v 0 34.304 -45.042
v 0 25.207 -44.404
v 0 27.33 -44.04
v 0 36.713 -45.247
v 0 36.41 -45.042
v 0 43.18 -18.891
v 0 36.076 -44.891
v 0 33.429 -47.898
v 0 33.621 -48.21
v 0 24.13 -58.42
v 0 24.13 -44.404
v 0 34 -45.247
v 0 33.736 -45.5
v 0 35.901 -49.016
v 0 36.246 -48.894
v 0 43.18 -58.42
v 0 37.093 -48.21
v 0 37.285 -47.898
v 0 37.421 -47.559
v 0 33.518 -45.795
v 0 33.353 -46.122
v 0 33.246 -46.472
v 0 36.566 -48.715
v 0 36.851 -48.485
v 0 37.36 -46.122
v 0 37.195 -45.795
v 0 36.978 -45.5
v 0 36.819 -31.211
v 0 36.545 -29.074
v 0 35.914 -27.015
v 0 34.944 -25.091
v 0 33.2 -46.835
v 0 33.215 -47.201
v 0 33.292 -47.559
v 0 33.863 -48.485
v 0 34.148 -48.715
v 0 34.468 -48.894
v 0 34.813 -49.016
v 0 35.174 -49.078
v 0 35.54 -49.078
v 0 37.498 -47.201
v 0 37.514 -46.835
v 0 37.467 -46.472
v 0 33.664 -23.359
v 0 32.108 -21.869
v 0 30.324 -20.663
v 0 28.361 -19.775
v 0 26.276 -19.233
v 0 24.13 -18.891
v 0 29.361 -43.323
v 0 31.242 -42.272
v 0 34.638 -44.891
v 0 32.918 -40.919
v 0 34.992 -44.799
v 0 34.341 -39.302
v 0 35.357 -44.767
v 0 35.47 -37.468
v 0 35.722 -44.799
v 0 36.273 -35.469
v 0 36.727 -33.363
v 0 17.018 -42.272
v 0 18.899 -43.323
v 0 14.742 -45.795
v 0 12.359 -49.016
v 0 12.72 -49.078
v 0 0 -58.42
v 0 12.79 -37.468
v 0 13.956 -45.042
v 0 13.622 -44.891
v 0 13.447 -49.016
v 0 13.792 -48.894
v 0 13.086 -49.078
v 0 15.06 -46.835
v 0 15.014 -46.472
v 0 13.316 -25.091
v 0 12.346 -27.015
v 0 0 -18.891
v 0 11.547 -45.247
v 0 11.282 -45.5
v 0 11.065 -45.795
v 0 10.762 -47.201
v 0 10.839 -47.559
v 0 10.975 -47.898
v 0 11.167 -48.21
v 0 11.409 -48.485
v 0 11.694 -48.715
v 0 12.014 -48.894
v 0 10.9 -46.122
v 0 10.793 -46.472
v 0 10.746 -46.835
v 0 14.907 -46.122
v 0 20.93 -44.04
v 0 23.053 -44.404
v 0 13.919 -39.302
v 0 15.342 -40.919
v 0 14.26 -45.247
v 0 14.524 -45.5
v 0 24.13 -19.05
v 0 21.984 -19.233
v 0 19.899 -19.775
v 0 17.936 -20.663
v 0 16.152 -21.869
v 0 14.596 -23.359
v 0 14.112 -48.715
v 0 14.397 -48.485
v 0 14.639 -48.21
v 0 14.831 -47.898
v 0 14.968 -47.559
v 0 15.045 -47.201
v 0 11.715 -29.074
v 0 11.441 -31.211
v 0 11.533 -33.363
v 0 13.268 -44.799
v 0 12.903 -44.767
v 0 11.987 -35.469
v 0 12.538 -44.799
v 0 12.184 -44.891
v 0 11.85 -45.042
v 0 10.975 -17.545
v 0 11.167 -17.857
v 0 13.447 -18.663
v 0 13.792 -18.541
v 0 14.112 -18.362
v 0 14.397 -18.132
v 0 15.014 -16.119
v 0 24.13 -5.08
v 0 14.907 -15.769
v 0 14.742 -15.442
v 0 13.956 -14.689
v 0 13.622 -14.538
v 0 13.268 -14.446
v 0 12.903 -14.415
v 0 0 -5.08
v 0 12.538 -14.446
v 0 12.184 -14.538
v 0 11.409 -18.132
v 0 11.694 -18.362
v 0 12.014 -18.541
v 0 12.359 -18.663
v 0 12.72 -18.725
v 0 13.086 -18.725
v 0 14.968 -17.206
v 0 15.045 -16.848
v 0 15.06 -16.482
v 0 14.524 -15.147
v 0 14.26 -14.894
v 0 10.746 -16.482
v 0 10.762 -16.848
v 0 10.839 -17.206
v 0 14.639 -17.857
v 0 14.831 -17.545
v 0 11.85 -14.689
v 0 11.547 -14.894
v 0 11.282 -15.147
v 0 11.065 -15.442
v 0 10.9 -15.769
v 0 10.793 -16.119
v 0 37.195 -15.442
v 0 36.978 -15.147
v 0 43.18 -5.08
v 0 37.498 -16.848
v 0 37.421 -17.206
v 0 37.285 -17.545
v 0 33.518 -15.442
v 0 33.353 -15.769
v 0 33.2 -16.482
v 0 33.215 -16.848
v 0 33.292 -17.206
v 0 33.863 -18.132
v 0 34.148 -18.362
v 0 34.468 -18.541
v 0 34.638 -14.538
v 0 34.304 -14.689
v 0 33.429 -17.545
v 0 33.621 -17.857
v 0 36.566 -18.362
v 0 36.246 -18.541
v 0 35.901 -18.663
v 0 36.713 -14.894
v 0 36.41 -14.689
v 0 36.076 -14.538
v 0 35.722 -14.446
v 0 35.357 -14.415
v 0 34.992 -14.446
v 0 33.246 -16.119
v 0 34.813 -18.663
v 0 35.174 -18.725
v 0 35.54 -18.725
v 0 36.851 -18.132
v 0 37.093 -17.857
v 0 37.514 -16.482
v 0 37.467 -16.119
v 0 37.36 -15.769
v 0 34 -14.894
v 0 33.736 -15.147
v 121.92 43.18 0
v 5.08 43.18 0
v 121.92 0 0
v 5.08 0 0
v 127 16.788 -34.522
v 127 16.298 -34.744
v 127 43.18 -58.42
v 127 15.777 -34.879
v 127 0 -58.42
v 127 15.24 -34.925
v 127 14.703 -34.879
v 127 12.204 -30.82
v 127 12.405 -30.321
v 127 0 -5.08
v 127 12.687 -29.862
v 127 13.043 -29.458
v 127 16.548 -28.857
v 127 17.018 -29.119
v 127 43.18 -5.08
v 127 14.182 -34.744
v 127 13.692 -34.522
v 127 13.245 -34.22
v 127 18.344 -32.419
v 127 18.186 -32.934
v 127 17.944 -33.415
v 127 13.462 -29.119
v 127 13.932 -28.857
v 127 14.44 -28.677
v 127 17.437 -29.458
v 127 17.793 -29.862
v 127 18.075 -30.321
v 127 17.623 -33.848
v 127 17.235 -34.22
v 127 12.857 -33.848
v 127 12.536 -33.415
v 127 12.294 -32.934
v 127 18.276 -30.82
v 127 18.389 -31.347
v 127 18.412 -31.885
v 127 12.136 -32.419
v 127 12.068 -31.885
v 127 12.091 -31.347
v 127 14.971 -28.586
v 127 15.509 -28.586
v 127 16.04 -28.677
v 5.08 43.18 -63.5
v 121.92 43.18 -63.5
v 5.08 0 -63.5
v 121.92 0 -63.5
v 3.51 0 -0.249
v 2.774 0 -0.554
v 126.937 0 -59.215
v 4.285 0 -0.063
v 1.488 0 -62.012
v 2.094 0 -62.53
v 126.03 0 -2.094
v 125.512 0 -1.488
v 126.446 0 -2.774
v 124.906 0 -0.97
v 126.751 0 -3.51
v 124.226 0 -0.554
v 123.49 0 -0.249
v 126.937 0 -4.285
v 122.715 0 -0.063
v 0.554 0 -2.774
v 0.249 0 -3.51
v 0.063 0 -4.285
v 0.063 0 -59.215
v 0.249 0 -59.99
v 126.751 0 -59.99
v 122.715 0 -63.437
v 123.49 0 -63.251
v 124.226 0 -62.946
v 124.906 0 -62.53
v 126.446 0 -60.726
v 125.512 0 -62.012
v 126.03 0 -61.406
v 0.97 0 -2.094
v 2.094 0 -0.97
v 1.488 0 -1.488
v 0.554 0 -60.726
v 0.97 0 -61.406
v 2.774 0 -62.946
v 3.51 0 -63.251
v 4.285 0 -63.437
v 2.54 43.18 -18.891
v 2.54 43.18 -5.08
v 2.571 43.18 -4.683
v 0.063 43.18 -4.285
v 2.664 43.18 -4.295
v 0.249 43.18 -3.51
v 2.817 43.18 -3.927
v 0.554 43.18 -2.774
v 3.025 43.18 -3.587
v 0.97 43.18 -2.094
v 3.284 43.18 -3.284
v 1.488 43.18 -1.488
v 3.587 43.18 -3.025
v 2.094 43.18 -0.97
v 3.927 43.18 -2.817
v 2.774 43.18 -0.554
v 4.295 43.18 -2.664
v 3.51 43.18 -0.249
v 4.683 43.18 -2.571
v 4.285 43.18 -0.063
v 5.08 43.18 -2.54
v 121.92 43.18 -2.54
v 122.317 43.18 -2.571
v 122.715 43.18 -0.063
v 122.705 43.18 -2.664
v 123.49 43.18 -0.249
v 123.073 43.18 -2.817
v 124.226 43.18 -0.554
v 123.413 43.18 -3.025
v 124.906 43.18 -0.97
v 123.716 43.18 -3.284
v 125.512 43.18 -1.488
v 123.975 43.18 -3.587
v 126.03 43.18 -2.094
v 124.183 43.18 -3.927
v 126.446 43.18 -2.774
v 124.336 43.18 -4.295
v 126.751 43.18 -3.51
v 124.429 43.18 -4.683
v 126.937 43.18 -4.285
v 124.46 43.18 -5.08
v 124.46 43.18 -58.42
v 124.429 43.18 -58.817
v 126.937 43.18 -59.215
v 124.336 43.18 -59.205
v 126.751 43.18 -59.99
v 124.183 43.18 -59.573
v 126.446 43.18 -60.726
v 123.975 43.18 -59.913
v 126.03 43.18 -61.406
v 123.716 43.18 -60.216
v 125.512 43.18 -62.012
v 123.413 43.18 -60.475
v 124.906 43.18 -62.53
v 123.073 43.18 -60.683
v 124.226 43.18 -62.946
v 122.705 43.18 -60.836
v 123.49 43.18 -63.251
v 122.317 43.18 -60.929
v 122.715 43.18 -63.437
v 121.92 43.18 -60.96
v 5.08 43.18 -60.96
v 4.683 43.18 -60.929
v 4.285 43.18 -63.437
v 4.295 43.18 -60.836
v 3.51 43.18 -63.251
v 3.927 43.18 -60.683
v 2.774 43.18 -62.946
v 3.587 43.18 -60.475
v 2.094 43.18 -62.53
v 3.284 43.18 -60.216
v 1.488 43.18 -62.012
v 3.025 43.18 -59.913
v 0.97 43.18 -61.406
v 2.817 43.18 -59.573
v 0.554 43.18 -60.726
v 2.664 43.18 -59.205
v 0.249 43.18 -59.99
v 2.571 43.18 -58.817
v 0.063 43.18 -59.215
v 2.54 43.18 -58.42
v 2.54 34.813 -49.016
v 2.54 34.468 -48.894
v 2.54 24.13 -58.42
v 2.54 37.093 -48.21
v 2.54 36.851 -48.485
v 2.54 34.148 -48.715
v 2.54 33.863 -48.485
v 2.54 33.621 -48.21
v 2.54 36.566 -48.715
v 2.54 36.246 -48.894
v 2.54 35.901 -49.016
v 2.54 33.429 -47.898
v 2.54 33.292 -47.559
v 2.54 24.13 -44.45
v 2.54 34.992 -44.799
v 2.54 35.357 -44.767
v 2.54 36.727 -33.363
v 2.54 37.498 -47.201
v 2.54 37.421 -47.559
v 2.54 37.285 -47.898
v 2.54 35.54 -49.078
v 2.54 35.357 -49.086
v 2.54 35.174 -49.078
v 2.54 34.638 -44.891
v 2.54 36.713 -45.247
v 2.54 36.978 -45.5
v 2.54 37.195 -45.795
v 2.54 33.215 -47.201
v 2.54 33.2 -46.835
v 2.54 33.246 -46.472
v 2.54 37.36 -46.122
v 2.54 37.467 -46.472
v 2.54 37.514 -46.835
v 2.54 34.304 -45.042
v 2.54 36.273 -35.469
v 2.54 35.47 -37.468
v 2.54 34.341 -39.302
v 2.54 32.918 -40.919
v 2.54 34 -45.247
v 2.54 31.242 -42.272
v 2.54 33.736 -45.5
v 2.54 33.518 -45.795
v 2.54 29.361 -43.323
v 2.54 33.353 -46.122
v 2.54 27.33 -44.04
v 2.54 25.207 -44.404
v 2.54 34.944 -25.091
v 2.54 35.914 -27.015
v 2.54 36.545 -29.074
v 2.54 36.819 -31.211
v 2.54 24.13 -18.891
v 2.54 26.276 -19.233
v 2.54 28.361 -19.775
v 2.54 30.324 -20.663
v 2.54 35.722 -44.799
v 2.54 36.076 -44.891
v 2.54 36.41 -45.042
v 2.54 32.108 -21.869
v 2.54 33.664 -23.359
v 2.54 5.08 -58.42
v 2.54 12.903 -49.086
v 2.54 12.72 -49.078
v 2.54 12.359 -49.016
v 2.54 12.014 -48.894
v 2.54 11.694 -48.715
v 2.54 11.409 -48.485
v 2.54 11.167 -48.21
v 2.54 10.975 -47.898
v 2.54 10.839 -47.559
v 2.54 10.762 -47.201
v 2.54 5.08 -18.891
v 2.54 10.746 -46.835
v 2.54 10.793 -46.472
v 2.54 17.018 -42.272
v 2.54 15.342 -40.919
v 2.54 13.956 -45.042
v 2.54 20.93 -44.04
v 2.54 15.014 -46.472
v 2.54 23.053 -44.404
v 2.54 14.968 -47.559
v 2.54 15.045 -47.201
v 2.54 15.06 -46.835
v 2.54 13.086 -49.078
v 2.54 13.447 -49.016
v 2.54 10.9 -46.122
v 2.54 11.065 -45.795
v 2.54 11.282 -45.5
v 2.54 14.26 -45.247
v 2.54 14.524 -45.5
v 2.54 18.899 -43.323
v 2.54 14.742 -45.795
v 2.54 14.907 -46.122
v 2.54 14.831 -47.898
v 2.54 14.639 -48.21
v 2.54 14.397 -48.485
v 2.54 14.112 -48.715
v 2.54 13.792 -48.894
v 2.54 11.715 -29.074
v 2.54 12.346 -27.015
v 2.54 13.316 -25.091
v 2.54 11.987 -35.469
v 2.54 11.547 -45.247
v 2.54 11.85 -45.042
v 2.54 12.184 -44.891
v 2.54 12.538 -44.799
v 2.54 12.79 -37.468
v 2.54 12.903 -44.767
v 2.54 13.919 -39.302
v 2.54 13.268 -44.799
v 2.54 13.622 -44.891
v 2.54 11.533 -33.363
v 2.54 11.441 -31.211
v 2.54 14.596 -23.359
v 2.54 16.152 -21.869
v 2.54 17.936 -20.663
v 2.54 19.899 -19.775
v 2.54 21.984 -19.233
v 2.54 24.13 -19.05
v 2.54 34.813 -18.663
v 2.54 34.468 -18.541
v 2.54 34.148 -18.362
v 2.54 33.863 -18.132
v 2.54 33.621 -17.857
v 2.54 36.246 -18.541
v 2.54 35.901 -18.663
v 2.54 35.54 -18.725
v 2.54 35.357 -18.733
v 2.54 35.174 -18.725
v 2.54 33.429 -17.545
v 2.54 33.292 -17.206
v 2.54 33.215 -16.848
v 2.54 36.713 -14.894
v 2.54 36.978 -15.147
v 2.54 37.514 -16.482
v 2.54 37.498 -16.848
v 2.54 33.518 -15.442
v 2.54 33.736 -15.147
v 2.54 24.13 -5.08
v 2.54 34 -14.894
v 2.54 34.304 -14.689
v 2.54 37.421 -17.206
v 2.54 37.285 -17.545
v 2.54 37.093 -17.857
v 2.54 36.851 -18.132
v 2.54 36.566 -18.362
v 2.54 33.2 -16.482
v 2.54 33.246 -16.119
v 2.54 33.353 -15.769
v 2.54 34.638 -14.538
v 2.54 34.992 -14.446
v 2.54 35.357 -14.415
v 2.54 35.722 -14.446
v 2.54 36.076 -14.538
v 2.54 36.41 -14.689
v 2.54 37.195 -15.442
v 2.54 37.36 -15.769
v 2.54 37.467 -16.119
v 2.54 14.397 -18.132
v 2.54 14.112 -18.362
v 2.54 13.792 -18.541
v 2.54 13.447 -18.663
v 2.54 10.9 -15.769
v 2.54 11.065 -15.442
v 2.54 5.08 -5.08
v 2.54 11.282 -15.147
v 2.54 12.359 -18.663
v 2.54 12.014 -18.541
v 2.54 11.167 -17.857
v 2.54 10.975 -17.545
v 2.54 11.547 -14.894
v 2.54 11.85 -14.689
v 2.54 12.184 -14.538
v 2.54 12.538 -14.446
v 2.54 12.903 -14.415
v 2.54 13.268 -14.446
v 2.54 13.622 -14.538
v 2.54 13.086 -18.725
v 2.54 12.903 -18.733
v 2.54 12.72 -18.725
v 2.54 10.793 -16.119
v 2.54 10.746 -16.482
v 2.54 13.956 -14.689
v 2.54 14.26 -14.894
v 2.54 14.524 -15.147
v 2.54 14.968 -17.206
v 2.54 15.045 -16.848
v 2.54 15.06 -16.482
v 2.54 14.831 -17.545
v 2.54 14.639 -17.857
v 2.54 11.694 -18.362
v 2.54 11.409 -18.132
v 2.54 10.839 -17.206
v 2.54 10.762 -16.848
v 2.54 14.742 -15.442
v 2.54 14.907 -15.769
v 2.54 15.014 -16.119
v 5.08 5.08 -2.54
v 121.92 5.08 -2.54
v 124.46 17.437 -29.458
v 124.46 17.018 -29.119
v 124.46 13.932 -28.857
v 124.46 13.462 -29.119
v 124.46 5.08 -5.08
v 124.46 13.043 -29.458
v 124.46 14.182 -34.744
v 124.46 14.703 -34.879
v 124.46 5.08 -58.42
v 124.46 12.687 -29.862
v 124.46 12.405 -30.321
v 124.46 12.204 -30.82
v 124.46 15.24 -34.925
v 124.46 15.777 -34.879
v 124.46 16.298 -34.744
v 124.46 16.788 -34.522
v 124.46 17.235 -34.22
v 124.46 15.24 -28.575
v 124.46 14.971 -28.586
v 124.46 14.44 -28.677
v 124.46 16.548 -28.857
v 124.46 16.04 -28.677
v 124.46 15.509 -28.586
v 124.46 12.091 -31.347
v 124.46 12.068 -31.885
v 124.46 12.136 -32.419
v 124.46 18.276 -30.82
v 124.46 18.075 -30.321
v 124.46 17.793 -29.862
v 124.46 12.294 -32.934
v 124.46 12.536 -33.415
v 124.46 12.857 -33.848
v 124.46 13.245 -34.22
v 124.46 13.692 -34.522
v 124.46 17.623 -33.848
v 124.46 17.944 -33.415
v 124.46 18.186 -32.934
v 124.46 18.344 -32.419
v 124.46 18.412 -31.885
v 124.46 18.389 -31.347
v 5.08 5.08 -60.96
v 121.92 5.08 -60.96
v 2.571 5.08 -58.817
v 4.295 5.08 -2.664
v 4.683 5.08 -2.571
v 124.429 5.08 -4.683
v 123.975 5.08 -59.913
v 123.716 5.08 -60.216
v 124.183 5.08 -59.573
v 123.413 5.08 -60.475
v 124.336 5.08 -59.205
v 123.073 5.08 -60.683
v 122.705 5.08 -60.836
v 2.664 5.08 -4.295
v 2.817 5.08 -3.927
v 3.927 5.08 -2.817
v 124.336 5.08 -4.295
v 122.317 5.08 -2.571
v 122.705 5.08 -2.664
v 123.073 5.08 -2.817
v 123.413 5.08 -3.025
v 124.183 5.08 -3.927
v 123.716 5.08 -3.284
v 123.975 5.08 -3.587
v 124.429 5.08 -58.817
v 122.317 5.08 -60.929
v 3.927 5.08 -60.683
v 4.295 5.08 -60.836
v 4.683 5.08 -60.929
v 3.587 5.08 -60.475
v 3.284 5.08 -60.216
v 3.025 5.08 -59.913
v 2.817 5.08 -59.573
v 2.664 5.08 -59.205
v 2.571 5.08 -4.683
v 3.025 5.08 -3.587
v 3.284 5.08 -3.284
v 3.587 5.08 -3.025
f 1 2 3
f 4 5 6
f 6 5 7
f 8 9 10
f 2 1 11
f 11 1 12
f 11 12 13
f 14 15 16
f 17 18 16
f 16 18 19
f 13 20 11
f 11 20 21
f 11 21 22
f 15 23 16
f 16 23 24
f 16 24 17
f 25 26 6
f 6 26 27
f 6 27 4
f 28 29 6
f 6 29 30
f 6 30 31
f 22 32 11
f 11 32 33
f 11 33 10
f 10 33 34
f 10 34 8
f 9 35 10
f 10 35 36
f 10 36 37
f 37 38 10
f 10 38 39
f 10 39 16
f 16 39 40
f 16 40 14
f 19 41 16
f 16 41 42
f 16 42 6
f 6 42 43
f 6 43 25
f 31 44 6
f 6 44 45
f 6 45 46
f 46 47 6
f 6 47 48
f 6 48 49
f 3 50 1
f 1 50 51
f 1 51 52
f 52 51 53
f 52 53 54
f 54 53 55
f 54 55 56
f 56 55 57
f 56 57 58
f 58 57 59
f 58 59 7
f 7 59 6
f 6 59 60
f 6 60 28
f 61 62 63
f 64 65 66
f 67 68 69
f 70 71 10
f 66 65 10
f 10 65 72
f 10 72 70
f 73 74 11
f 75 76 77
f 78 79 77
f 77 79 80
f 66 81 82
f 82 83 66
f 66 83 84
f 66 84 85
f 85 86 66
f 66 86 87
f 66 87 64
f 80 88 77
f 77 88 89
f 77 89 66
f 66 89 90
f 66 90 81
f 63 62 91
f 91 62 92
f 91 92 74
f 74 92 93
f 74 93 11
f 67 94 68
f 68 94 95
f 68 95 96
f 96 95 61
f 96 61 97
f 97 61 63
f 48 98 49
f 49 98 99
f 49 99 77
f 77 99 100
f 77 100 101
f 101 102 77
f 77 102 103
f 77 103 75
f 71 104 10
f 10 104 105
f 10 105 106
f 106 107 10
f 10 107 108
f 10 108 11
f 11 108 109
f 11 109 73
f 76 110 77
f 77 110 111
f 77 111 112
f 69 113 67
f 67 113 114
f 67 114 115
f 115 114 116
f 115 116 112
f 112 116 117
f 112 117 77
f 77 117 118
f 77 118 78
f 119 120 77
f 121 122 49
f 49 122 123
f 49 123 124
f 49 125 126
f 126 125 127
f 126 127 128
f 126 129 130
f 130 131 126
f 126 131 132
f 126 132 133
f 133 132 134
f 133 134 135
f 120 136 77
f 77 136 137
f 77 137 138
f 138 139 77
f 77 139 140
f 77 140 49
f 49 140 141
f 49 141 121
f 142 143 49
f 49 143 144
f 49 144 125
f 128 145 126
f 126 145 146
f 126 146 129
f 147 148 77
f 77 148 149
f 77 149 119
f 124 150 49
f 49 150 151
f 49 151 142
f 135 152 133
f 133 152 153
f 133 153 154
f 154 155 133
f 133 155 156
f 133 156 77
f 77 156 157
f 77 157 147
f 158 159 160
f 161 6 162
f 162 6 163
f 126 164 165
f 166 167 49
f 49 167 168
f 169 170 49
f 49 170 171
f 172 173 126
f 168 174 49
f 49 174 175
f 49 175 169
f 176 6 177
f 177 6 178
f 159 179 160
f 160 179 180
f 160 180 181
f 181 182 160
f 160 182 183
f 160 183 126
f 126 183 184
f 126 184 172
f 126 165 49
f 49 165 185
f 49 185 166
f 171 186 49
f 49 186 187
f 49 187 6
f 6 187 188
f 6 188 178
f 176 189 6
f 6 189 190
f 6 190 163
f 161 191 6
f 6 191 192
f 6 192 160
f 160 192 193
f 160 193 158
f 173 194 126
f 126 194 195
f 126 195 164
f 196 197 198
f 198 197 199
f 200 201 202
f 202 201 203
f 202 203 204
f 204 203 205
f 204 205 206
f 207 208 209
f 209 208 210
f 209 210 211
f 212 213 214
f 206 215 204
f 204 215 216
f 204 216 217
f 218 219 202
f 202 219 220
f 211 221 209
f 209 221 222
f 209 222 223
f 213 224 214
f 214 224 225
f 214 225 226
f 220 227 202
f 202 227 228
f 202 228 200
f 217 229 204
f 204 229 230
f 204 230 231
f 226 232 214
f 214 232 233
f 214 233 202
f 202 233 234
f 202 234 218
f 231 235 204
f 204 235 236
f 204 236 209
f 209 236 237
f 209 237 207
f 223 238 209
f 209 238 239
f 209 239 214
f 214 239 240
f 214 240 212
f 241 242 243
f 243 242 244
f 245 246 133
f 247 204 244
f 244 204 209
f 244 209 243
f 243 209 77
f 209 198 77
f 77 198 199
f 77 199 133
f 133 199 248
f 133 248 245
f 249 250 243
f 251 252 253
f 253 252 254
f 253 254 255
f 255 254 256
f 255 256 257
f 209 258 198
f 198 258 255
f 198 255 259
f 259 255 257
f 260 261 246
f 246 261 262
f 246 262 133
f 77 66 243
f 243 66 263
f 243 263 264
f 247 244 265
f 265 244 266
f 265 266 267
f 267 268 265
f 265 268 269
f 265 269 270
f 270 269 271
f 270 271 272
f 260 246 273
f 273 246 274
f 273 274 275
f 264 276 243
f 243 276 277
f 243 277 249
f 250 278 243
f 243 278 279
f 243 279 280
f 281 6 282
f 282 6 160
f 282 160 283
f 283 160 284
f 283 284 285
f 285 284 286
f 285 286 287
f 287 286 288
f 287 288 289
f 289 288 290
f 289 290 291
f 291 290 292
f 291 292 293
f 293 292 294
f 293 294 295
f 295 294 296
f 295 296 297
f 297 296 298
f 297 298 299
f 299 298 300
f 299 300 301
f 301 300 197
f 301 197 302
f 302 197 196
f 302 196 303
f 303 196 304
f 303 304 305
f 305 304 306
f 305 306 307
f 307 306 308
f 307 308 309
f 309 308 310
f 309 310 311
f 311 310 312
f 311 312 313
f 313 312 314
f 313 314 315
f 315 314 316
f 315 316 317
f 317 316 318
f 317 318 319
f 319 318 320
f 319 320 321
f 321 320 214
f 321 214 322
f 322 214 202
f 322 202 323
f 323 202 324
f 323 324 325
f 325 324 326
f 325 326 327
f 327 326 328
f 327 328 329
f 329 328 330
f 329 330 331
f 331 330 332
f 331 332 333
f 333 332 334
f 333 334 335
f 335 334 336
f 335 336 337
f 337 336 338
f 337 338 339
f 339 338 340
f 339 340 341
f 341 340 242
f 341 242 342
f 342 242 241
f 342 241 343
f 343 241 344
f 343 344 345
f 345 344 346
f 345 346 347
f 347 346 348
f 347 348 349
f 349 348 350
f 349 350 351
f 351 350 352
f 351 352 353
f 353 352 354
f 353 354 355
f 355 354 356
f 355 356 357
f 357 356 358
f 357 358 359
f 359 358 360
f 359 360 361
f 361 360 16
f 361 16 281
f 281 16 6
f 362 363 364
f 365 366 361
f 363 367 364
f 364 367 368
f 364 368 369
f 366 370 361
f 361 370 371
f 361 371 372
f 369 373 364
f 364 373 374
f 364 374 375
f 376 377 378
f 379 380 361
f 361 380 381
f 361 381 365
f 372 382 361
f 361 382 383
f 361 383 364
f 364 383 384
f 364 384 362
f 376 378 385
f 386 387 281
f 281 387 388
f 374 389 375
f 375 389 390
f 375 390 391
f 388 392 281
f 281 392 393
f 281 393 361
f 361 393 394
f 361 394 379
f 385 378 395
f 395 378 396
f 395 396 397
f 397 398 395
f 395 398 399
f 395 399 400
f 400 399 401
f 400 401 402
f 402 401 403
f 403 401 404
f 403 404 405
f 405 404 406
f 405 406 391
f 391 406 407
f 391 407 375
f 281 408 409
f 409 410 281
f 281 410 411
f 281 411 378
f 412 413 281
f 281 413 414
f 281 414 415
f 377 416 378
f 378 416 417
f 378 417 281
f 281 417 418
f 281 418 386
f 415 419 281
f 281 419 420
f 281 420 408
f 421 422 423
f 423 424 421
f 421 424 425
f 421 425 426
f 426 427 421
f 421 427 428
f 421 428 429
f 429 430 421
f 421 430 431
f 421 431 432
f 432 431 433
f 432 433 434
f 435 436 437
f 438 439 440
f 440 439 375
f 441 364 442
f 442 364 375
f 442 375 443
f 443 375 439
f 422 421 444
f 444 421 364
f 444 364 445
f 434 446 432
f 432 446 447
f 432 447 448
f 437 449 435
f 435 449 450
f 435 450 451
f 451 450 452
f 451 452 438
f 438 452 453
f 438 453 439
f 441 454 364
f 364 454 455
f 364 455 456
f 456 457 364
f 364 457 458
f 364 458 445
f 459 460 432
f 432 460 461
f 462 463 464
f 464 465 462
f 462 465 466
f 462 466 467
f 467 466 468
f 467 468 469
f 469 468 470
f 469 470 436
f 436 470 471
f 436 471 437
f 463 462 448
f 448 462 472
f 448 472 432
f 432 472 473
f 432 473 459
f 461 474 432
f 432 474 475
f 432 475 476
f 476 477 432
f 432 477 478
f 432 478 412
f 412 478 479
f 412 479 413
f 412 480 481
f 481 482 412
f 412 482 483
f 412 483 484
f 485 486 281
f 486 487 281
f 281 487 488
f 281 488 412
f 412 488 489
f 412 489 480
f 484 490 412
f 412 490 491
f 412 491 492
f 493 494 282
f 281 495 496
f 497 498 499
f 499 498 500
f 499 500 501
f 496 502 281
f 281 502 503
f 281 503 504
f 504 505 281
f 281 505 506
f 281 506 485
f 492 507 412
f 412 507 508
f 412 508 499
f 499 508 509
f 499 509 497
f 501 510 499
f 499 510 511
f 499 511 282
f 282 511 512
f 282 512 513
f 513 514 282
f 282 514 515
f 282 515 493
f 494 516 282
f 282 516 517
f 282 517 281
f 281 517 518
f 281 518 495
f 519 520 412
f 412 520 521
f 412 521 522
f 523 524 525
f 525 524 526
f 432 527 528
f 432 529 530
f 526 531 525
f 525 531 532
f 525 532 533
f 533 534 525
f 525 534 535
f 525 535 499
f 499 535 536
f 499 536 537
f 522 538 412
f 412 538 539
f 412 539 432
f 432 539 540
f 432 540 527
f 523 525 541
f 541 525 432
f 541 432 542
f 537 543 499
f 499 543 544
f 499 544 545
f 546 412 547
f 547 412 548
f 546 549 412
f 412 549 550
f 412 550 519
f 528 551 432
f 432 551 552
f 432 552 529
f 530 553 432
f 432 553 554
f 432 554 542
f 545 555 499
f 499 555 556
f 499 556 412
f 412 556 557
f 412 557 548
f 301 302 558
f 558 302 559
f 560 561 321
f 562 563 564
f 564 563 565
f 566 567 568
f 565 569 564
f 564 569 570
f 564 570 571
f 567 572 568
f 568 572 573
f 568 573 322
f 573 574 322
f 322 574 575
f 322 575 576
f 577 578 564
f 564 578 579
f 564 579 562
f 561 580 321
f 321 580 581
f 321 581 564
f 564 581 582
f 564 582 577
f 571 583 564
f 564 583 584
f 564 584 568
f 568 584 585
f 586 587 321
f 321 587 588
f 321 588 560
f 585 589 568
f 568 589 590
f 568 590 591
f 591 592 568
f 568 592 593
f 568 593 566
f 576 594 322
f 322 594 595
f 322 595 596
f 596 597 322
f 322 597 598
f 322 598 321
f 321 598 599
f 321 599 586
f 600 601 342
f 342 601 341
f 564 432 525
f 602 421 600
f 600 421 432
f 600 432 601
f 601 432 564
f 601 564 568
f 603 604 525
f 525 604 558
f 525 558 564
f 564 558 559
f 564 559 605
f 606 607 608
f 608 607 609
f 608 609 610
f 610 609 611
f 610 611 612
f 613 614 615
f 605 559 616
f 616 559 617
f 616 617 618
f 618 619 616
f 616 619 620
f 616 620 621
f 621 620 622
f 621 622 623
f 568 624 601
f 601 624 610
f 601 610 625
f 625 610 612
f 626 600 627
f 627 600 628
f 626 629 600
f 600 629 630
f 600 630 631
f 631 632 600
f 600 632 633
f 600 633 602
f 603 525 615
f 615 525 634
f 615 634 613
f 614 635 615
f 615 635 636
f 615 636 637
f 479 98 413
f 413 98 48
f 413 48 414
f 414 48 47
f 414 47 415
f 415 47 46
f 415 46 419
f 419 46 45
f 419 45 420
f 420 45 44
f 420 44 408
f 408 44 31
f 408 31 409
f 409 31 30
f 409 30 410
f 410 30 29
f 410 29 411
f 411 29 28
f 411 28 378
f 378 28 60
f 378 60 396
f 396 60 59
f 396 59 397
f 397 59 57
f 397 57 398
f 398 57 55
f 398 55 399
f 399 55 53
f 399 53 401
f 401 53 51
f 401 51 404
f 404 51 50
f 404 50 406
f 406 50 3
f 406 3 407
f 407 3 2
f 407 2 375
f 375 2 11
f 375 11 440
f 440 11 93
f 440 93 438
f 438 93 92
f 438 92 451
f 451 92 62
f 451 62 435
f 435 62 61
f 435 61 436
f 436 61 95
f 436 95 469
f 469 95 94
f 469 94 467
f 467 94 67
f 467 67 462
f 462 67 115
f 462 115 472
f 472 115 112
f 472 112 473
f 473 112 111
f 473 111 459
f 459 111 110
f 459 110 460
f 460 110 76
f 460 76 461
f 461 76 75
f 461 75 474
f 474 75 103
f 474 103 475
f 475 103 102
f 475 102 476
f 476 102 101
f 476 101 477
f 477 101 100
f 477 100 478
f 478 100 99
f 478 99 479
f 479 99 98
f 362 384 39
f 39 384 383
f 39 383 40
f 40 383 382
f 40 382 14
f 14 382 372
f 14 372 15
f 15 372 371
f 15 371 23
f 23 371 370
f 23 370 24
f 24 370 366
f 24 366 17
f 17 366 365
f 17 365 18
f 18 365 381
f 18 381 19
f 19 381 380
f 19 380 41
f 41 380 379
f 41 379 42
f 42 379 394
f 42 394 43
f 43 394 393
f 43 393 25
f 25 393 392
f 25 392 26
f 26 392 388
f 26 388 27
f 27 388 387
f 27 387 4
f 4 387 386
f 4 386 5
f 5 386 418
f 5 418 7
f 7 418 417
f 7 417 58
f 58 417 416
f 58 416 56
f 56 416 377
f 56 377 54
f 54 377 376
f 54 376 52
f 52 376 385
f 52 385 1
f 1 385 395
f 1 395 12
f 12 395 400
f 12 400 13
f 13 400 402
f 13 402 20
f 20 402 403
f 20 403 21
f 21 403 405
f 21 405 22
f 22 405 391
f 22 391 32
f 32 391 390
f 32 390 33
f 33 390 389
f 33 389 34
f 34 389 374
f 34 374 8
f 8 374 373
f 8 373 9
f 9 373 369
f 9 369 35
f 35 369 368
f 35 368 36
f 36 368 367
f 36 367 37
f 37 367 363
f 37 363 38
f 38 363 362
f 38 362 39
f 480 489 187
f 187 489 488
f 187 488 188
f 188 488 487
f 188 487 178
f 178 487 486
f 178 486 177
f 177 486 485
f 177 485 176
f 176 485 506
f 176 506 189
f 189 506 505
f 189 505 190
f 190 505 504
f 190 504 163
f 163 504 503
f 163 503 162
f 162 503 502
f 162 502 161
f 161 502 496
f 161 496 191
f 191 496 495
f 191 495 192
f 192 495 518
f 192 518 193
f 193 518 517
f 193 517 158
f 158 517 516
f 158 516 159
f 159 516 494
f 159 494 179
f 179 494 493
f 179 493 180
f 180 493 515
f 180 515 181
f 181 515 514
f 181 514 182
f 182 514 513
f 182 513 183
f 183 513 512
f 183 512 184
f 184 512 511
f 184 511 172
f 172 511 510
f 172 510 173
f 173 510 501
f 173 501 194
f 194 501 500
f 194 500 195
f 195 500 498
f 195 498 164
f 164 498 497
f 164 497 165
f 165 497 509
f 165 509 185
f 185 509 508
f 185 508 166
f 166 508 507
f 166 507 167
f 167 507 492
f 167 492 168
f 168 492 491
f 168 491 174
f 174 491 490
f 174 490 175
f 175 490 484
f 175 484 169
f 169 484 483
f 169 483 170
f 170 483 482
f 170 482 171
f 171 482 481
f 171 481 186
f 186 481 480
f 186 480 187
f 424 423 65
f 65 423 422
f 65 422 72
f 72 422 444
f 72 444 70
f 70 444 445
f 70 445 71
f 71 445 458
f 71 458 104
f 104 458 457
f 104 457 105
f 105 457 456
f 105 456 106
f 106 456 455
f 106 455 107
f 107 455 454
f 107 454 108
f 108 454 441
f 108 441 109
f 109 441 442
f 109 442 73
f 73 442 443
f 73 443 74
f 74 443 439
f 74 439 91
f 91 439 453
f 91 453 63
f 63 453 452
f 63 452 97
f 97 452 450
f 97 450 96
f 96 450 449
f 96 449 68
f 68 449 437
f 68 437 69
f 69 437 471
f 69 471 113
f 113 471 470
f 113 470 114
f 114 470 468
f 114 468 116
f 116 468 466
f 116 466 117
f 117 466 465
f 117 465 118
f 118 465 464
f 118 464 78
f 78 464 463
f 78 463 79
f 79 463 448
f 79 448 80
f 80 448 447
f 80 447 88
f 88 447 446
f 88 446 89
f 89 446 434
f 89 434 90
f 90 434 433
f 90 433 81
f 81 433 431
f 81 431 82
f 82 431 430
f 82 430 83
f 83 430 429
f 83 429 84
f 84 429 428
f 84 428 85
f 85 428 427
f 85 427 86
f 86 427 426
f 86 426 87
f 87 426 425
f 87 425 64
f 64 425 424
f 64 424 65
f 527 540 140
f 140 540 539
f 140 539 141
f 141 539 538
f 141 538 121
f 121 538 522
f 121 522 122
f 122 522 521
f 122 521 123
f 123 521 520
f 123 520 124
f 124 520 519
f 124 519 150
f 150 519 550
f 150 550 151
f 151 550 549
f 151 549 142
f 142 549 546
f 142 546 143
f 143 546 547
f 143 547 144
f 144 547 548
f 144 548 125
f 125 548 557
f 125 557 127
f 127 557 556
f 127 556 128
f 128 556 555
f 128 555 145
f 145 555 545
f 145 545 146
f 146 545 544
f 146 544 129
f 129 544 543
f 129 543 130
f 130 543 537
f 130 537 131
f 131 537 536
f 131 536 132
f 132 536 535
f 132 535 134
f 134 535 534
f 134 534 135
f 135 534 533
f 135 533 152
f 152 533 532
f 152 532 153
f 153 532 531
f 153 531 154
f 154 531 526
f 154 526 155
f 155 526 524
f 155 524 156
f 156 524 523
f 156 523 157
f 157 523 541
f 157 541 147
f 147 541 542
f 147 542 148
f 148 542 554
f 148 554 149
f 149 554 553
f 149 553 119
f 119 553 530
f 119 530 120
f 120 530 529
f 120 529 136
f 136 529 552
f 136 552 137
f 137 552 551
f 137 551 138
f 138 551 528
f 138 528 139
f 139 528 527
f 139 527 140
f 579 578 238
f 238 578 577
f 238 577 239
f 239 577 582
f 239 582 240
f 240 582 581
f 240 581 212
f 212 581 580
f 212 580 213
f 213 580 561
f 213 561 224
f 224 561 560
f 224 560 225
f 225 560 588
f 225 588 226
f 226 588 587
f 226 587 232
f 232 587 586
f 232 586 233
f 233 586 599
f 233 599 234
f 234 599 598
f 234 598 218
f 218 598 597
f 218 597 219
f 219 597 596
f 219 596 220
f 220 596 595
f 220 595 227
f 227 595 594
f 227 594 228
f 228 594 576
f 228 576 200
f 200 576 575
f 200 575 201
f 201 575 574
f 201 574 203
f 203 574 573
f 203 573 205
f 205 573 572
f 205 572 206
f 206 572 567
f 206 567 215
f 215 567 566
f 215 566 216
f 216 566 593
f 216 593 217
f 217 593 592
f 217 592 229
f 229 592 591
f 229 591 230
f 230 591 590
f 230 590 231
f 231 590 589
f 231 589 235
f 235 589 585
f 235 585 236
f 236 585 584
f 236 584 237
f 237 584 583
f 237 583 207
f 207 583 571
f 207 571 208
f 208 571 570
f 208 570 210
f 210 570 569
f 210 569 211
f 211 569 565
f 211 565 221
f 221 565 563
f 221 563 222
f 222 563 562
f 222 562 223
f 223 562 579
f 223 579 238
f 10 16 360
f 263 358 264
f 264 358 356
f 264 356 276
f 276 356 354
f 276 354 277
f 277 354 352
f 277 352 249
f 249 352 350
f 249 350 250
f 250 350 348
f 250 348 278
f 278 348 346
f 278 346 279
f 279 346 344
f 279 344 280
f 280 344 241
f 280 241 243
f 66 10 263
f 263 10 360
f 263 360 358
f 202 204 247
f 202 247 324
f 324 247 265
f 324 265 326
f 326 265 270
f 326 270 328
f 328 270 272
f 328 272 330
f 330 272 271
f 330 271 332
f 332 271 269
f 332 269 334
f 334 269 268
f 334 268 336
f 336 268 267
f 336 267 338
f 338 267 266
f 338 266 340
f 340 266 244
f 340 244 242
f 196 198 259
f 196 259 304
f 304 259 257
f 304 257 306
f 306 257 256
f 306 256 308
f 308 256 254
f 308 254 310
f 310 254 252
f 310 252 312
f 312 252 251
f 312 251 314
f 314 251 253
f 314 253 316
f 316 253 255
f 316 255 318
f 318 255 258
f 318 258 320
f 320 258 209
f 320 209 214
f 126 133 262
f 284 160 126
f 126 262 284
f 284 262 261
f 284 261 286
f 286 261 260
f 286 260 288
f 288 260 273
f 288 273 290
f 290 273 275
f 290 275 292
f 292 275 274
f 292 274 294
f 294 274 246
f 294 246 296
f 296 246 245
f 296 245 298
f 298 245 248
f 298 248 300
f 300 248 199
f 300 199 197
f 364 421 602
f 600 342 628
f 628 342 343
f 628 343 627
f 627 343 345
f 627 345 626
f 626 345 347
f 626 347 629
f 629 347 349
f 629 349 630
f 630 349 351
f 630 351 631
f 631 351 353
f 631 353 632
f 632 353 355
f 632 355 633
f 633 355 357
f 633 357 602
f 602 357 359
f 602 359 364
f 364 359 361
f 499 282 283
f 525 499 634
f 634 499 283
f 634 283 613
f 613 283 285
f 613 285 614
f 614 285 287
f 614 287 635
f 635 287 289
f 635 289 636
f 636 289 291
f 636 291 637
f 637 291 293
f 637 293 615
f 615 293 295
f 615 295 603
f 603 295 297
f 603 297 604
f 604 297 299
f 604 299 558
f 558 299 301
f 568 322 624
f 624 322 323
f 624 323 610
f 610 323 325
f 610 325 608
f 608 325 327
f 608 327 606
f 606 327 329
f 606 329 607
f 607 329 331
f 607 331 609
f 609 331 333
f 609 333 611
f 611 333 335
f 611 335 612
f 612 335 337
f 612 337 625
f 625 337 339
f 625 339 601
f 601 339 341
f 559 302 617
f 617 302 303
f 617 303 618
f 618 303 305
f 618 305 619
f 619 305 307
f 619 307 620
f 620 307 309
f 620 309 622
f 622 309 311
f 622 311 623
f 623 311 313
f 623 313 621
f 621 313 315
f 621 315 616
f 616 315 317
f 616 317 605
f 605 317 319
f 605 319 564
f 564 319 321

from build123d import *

# Parameters (mm, degrees)
SKETCH1_W           = 127
SKETCH1_H           = 63.5
BOSS_EXTRUDE1_DEPTH = 5.08
SKETCH2_W           = 127
SKETCH2_H           = 63.5
SKETCH2_W_2         = 121.92
SKETCH2_H_2         = 58.42
BOSS_EXTRUDE3_DEPTH = 38.1
CUT_EXTRUDE1_REACH  = 150.411
SKETCH3_R           = 12.7
SKETCH3_R_2         = 2.159
CUT_EXTRUDE3_REACH  = 150.411
SKETCH4_R           = 3.175
FILLET3_R           = 5.08
FILLET4_R           = 2.54


with BuildPart() as part:
    # Sketch1 → Boss-Extrude1 (new body)
    with BuildSketch(Plane(origin=(0, 0, 0), x_dir=(1, 0, 0), z_dir=(0, 1, 0))):
        with Locations((63.5, 31.75)):
            Rectangle(SKETCH1_W, SKETCH1_H)
    extrude(amount=BOSS_EXTRUDE1_DEPTH)

    # Sketch2 → Boss-Extrude3 (add)
    with BuildSketch(Plane(origin=(0, 5.08, 0), x_dir=(1, 0, 0), z_dir=(0, 1, 0))):
        with Locations((63.5, 31.75)):
            Rectangle(SKETCH2_W, SKETCH2_H)
        with Locations((63.5, 31.75)):
            Rectangle(SKETCH2_W_2, SKETCH2_H_2, mode=Mode.SUBTRACT)
    extrude(amount=BOSS_EXTRUDE3_DEPTH)

    # Sketch3 → Cut-Extrude1 (cut, up to next)
    with BuildSketch(Plane.ZY, mode=Mode.PRIVATE) as cut_extrude1_sk1:
        with Locations((-31.75, 24.13)):
            Circle(SKETCH3_R)
    cut_extrude1_tool1 = extrude(cut_extrude1_sk1.sketch, amount=-CUT_EXTRUDE1_REACH, mode=Mode.PRIVATE) & part.part
    # Sketch3 → Cut-Extrude1 (cut, up to next)
    with BuildSketch(Plane.ZY, mode=Mode.PRIVATE) as cut_extrude1_sk2:
        with Locations((-46.9265, 35.3568)):
            Circle(SKETCH3_R_2)
    cut_extrude1_tool2 = extrude(cut_extrude1_sk2.sketch, amount=-CUT_EXTRUDE1_REACH, mode=Mode.PRIVATE) & part.part
    # Sketch3 → Cut-Extrude1 (cut, up to next)
    with BuildSketch(Plane.ZY, mode=Mode.PRIVATE) as cut_extrude1_sk3:
        with Locations((-16.5735, 35.3568)):
            Circle(SKETCH3_R_2)
    cut_extrude1_tool3 = extrude(cut_extrude1_sk3.sketch, amount=-CUT_EXTRUDE1_REACH, mode=Mode.PRIVATE) & part.part
    # Sketch3 → Cut-Extrude1 (cut, up to next)
    with BuildSketch(Plane.ZY, mode=Mode.PRIVATE) as cut_extrude1_sk4:
        with Locations((-46.9265, 12.9032)):
            Circle(SKETCH3_R_2)
    cut_extrude1_tool4 = extrude(cut_extrude1_sk4.sketch, amount=-CUT_EXTRUDE1_REACH, mode=Mode.PRIVATE) & part.part
    # Sketch3 → Cut-Extrude1 (cut, up to next)
    with BuildSketch(Plane.ZY, mode=Mode.PRIVATE) as cut_extrude1_sk5:
        with Locations((-16.5735, 12.9032)):
            Circle(SKETCH3_R_2)
    cut_extrude1_tool5 = extrude(cut_extrude1_sk5.sketch, amount=-CUT_EXTRUDE1_REACH, mode=Mode.PRIVATE) & part.part
    add(cut_extrude1_tool1.solids().sort_by_distance((0, 24.13, -31.75))[0], mode=Mode.SUBTRACT)
    add(cut_extrude1_tool2.solids().sort_by_distance((0, 35.3568, -46.9265))[0], mode=Mode.SUBTRACT)
    add(cut_extrude1_tool3.solids().sort_by_distance((0, 35.3568, -16.5735))[0], mode=Mode.SUBTRACT)
    add(cut_extrude1_tool4.solids().sort_by_distance((0, 12.9032, -46.9265))[0], mode=Mode.SUBTRACT)
    add(cut_extrude1_tool5.solids().sort_by_distance((0, 12.9032, -16.5735))[0], mode=Mode.SUBTRACT)

    # Sketch4 → Cut-Extrude3 (cut, up to next)
    with BuildSketch(Plane(origin=(127, 0, 0), x_dir=(0, 0, -1), z_dir=(1, 0, 0)), mode=Mode.PRIVATE) as cut_extrude3_sk1:
        with Locations((31.75, 15.24)):
            Circle(SKETCH4_R)
    cut_extrude3_tool1 = extrude(cut_extrude3_sk1.sketch, amount=-CUT_EXTRUDE3_REACH, mode=Mode.PRIVATE) & part.part
    add(cut_extrude3_tool1.solids().sort_by_distance((127, 15.24, -31.75))[0], mode=Mode.SUBTRACT)

    # Fillet3
    fillet3_edges = [part.edges().sort_by_distance(p)[0] for p in [
        (0, 21.59, -63.5),
        (127, 21.59, -63.5),
        (127, 21.59, 0),
        (0, 21.59, 0),
    ]]
    fillet(fillet3_edges, radius=FILLET3_R)

    # Fillet4
    fillet4_edges = [part.edges().sort_by_distance(p)[0] for p in [
        (2.54, 24.13, -2.54),
        (124.46, 24.13, -2.54),
        (124.46, 24.13, -60.96),
        (2.54, 24.13, -60.96),
    ]]
    fillet(fillet4_edges, radius=FILLET4_R)


solid = part.part
